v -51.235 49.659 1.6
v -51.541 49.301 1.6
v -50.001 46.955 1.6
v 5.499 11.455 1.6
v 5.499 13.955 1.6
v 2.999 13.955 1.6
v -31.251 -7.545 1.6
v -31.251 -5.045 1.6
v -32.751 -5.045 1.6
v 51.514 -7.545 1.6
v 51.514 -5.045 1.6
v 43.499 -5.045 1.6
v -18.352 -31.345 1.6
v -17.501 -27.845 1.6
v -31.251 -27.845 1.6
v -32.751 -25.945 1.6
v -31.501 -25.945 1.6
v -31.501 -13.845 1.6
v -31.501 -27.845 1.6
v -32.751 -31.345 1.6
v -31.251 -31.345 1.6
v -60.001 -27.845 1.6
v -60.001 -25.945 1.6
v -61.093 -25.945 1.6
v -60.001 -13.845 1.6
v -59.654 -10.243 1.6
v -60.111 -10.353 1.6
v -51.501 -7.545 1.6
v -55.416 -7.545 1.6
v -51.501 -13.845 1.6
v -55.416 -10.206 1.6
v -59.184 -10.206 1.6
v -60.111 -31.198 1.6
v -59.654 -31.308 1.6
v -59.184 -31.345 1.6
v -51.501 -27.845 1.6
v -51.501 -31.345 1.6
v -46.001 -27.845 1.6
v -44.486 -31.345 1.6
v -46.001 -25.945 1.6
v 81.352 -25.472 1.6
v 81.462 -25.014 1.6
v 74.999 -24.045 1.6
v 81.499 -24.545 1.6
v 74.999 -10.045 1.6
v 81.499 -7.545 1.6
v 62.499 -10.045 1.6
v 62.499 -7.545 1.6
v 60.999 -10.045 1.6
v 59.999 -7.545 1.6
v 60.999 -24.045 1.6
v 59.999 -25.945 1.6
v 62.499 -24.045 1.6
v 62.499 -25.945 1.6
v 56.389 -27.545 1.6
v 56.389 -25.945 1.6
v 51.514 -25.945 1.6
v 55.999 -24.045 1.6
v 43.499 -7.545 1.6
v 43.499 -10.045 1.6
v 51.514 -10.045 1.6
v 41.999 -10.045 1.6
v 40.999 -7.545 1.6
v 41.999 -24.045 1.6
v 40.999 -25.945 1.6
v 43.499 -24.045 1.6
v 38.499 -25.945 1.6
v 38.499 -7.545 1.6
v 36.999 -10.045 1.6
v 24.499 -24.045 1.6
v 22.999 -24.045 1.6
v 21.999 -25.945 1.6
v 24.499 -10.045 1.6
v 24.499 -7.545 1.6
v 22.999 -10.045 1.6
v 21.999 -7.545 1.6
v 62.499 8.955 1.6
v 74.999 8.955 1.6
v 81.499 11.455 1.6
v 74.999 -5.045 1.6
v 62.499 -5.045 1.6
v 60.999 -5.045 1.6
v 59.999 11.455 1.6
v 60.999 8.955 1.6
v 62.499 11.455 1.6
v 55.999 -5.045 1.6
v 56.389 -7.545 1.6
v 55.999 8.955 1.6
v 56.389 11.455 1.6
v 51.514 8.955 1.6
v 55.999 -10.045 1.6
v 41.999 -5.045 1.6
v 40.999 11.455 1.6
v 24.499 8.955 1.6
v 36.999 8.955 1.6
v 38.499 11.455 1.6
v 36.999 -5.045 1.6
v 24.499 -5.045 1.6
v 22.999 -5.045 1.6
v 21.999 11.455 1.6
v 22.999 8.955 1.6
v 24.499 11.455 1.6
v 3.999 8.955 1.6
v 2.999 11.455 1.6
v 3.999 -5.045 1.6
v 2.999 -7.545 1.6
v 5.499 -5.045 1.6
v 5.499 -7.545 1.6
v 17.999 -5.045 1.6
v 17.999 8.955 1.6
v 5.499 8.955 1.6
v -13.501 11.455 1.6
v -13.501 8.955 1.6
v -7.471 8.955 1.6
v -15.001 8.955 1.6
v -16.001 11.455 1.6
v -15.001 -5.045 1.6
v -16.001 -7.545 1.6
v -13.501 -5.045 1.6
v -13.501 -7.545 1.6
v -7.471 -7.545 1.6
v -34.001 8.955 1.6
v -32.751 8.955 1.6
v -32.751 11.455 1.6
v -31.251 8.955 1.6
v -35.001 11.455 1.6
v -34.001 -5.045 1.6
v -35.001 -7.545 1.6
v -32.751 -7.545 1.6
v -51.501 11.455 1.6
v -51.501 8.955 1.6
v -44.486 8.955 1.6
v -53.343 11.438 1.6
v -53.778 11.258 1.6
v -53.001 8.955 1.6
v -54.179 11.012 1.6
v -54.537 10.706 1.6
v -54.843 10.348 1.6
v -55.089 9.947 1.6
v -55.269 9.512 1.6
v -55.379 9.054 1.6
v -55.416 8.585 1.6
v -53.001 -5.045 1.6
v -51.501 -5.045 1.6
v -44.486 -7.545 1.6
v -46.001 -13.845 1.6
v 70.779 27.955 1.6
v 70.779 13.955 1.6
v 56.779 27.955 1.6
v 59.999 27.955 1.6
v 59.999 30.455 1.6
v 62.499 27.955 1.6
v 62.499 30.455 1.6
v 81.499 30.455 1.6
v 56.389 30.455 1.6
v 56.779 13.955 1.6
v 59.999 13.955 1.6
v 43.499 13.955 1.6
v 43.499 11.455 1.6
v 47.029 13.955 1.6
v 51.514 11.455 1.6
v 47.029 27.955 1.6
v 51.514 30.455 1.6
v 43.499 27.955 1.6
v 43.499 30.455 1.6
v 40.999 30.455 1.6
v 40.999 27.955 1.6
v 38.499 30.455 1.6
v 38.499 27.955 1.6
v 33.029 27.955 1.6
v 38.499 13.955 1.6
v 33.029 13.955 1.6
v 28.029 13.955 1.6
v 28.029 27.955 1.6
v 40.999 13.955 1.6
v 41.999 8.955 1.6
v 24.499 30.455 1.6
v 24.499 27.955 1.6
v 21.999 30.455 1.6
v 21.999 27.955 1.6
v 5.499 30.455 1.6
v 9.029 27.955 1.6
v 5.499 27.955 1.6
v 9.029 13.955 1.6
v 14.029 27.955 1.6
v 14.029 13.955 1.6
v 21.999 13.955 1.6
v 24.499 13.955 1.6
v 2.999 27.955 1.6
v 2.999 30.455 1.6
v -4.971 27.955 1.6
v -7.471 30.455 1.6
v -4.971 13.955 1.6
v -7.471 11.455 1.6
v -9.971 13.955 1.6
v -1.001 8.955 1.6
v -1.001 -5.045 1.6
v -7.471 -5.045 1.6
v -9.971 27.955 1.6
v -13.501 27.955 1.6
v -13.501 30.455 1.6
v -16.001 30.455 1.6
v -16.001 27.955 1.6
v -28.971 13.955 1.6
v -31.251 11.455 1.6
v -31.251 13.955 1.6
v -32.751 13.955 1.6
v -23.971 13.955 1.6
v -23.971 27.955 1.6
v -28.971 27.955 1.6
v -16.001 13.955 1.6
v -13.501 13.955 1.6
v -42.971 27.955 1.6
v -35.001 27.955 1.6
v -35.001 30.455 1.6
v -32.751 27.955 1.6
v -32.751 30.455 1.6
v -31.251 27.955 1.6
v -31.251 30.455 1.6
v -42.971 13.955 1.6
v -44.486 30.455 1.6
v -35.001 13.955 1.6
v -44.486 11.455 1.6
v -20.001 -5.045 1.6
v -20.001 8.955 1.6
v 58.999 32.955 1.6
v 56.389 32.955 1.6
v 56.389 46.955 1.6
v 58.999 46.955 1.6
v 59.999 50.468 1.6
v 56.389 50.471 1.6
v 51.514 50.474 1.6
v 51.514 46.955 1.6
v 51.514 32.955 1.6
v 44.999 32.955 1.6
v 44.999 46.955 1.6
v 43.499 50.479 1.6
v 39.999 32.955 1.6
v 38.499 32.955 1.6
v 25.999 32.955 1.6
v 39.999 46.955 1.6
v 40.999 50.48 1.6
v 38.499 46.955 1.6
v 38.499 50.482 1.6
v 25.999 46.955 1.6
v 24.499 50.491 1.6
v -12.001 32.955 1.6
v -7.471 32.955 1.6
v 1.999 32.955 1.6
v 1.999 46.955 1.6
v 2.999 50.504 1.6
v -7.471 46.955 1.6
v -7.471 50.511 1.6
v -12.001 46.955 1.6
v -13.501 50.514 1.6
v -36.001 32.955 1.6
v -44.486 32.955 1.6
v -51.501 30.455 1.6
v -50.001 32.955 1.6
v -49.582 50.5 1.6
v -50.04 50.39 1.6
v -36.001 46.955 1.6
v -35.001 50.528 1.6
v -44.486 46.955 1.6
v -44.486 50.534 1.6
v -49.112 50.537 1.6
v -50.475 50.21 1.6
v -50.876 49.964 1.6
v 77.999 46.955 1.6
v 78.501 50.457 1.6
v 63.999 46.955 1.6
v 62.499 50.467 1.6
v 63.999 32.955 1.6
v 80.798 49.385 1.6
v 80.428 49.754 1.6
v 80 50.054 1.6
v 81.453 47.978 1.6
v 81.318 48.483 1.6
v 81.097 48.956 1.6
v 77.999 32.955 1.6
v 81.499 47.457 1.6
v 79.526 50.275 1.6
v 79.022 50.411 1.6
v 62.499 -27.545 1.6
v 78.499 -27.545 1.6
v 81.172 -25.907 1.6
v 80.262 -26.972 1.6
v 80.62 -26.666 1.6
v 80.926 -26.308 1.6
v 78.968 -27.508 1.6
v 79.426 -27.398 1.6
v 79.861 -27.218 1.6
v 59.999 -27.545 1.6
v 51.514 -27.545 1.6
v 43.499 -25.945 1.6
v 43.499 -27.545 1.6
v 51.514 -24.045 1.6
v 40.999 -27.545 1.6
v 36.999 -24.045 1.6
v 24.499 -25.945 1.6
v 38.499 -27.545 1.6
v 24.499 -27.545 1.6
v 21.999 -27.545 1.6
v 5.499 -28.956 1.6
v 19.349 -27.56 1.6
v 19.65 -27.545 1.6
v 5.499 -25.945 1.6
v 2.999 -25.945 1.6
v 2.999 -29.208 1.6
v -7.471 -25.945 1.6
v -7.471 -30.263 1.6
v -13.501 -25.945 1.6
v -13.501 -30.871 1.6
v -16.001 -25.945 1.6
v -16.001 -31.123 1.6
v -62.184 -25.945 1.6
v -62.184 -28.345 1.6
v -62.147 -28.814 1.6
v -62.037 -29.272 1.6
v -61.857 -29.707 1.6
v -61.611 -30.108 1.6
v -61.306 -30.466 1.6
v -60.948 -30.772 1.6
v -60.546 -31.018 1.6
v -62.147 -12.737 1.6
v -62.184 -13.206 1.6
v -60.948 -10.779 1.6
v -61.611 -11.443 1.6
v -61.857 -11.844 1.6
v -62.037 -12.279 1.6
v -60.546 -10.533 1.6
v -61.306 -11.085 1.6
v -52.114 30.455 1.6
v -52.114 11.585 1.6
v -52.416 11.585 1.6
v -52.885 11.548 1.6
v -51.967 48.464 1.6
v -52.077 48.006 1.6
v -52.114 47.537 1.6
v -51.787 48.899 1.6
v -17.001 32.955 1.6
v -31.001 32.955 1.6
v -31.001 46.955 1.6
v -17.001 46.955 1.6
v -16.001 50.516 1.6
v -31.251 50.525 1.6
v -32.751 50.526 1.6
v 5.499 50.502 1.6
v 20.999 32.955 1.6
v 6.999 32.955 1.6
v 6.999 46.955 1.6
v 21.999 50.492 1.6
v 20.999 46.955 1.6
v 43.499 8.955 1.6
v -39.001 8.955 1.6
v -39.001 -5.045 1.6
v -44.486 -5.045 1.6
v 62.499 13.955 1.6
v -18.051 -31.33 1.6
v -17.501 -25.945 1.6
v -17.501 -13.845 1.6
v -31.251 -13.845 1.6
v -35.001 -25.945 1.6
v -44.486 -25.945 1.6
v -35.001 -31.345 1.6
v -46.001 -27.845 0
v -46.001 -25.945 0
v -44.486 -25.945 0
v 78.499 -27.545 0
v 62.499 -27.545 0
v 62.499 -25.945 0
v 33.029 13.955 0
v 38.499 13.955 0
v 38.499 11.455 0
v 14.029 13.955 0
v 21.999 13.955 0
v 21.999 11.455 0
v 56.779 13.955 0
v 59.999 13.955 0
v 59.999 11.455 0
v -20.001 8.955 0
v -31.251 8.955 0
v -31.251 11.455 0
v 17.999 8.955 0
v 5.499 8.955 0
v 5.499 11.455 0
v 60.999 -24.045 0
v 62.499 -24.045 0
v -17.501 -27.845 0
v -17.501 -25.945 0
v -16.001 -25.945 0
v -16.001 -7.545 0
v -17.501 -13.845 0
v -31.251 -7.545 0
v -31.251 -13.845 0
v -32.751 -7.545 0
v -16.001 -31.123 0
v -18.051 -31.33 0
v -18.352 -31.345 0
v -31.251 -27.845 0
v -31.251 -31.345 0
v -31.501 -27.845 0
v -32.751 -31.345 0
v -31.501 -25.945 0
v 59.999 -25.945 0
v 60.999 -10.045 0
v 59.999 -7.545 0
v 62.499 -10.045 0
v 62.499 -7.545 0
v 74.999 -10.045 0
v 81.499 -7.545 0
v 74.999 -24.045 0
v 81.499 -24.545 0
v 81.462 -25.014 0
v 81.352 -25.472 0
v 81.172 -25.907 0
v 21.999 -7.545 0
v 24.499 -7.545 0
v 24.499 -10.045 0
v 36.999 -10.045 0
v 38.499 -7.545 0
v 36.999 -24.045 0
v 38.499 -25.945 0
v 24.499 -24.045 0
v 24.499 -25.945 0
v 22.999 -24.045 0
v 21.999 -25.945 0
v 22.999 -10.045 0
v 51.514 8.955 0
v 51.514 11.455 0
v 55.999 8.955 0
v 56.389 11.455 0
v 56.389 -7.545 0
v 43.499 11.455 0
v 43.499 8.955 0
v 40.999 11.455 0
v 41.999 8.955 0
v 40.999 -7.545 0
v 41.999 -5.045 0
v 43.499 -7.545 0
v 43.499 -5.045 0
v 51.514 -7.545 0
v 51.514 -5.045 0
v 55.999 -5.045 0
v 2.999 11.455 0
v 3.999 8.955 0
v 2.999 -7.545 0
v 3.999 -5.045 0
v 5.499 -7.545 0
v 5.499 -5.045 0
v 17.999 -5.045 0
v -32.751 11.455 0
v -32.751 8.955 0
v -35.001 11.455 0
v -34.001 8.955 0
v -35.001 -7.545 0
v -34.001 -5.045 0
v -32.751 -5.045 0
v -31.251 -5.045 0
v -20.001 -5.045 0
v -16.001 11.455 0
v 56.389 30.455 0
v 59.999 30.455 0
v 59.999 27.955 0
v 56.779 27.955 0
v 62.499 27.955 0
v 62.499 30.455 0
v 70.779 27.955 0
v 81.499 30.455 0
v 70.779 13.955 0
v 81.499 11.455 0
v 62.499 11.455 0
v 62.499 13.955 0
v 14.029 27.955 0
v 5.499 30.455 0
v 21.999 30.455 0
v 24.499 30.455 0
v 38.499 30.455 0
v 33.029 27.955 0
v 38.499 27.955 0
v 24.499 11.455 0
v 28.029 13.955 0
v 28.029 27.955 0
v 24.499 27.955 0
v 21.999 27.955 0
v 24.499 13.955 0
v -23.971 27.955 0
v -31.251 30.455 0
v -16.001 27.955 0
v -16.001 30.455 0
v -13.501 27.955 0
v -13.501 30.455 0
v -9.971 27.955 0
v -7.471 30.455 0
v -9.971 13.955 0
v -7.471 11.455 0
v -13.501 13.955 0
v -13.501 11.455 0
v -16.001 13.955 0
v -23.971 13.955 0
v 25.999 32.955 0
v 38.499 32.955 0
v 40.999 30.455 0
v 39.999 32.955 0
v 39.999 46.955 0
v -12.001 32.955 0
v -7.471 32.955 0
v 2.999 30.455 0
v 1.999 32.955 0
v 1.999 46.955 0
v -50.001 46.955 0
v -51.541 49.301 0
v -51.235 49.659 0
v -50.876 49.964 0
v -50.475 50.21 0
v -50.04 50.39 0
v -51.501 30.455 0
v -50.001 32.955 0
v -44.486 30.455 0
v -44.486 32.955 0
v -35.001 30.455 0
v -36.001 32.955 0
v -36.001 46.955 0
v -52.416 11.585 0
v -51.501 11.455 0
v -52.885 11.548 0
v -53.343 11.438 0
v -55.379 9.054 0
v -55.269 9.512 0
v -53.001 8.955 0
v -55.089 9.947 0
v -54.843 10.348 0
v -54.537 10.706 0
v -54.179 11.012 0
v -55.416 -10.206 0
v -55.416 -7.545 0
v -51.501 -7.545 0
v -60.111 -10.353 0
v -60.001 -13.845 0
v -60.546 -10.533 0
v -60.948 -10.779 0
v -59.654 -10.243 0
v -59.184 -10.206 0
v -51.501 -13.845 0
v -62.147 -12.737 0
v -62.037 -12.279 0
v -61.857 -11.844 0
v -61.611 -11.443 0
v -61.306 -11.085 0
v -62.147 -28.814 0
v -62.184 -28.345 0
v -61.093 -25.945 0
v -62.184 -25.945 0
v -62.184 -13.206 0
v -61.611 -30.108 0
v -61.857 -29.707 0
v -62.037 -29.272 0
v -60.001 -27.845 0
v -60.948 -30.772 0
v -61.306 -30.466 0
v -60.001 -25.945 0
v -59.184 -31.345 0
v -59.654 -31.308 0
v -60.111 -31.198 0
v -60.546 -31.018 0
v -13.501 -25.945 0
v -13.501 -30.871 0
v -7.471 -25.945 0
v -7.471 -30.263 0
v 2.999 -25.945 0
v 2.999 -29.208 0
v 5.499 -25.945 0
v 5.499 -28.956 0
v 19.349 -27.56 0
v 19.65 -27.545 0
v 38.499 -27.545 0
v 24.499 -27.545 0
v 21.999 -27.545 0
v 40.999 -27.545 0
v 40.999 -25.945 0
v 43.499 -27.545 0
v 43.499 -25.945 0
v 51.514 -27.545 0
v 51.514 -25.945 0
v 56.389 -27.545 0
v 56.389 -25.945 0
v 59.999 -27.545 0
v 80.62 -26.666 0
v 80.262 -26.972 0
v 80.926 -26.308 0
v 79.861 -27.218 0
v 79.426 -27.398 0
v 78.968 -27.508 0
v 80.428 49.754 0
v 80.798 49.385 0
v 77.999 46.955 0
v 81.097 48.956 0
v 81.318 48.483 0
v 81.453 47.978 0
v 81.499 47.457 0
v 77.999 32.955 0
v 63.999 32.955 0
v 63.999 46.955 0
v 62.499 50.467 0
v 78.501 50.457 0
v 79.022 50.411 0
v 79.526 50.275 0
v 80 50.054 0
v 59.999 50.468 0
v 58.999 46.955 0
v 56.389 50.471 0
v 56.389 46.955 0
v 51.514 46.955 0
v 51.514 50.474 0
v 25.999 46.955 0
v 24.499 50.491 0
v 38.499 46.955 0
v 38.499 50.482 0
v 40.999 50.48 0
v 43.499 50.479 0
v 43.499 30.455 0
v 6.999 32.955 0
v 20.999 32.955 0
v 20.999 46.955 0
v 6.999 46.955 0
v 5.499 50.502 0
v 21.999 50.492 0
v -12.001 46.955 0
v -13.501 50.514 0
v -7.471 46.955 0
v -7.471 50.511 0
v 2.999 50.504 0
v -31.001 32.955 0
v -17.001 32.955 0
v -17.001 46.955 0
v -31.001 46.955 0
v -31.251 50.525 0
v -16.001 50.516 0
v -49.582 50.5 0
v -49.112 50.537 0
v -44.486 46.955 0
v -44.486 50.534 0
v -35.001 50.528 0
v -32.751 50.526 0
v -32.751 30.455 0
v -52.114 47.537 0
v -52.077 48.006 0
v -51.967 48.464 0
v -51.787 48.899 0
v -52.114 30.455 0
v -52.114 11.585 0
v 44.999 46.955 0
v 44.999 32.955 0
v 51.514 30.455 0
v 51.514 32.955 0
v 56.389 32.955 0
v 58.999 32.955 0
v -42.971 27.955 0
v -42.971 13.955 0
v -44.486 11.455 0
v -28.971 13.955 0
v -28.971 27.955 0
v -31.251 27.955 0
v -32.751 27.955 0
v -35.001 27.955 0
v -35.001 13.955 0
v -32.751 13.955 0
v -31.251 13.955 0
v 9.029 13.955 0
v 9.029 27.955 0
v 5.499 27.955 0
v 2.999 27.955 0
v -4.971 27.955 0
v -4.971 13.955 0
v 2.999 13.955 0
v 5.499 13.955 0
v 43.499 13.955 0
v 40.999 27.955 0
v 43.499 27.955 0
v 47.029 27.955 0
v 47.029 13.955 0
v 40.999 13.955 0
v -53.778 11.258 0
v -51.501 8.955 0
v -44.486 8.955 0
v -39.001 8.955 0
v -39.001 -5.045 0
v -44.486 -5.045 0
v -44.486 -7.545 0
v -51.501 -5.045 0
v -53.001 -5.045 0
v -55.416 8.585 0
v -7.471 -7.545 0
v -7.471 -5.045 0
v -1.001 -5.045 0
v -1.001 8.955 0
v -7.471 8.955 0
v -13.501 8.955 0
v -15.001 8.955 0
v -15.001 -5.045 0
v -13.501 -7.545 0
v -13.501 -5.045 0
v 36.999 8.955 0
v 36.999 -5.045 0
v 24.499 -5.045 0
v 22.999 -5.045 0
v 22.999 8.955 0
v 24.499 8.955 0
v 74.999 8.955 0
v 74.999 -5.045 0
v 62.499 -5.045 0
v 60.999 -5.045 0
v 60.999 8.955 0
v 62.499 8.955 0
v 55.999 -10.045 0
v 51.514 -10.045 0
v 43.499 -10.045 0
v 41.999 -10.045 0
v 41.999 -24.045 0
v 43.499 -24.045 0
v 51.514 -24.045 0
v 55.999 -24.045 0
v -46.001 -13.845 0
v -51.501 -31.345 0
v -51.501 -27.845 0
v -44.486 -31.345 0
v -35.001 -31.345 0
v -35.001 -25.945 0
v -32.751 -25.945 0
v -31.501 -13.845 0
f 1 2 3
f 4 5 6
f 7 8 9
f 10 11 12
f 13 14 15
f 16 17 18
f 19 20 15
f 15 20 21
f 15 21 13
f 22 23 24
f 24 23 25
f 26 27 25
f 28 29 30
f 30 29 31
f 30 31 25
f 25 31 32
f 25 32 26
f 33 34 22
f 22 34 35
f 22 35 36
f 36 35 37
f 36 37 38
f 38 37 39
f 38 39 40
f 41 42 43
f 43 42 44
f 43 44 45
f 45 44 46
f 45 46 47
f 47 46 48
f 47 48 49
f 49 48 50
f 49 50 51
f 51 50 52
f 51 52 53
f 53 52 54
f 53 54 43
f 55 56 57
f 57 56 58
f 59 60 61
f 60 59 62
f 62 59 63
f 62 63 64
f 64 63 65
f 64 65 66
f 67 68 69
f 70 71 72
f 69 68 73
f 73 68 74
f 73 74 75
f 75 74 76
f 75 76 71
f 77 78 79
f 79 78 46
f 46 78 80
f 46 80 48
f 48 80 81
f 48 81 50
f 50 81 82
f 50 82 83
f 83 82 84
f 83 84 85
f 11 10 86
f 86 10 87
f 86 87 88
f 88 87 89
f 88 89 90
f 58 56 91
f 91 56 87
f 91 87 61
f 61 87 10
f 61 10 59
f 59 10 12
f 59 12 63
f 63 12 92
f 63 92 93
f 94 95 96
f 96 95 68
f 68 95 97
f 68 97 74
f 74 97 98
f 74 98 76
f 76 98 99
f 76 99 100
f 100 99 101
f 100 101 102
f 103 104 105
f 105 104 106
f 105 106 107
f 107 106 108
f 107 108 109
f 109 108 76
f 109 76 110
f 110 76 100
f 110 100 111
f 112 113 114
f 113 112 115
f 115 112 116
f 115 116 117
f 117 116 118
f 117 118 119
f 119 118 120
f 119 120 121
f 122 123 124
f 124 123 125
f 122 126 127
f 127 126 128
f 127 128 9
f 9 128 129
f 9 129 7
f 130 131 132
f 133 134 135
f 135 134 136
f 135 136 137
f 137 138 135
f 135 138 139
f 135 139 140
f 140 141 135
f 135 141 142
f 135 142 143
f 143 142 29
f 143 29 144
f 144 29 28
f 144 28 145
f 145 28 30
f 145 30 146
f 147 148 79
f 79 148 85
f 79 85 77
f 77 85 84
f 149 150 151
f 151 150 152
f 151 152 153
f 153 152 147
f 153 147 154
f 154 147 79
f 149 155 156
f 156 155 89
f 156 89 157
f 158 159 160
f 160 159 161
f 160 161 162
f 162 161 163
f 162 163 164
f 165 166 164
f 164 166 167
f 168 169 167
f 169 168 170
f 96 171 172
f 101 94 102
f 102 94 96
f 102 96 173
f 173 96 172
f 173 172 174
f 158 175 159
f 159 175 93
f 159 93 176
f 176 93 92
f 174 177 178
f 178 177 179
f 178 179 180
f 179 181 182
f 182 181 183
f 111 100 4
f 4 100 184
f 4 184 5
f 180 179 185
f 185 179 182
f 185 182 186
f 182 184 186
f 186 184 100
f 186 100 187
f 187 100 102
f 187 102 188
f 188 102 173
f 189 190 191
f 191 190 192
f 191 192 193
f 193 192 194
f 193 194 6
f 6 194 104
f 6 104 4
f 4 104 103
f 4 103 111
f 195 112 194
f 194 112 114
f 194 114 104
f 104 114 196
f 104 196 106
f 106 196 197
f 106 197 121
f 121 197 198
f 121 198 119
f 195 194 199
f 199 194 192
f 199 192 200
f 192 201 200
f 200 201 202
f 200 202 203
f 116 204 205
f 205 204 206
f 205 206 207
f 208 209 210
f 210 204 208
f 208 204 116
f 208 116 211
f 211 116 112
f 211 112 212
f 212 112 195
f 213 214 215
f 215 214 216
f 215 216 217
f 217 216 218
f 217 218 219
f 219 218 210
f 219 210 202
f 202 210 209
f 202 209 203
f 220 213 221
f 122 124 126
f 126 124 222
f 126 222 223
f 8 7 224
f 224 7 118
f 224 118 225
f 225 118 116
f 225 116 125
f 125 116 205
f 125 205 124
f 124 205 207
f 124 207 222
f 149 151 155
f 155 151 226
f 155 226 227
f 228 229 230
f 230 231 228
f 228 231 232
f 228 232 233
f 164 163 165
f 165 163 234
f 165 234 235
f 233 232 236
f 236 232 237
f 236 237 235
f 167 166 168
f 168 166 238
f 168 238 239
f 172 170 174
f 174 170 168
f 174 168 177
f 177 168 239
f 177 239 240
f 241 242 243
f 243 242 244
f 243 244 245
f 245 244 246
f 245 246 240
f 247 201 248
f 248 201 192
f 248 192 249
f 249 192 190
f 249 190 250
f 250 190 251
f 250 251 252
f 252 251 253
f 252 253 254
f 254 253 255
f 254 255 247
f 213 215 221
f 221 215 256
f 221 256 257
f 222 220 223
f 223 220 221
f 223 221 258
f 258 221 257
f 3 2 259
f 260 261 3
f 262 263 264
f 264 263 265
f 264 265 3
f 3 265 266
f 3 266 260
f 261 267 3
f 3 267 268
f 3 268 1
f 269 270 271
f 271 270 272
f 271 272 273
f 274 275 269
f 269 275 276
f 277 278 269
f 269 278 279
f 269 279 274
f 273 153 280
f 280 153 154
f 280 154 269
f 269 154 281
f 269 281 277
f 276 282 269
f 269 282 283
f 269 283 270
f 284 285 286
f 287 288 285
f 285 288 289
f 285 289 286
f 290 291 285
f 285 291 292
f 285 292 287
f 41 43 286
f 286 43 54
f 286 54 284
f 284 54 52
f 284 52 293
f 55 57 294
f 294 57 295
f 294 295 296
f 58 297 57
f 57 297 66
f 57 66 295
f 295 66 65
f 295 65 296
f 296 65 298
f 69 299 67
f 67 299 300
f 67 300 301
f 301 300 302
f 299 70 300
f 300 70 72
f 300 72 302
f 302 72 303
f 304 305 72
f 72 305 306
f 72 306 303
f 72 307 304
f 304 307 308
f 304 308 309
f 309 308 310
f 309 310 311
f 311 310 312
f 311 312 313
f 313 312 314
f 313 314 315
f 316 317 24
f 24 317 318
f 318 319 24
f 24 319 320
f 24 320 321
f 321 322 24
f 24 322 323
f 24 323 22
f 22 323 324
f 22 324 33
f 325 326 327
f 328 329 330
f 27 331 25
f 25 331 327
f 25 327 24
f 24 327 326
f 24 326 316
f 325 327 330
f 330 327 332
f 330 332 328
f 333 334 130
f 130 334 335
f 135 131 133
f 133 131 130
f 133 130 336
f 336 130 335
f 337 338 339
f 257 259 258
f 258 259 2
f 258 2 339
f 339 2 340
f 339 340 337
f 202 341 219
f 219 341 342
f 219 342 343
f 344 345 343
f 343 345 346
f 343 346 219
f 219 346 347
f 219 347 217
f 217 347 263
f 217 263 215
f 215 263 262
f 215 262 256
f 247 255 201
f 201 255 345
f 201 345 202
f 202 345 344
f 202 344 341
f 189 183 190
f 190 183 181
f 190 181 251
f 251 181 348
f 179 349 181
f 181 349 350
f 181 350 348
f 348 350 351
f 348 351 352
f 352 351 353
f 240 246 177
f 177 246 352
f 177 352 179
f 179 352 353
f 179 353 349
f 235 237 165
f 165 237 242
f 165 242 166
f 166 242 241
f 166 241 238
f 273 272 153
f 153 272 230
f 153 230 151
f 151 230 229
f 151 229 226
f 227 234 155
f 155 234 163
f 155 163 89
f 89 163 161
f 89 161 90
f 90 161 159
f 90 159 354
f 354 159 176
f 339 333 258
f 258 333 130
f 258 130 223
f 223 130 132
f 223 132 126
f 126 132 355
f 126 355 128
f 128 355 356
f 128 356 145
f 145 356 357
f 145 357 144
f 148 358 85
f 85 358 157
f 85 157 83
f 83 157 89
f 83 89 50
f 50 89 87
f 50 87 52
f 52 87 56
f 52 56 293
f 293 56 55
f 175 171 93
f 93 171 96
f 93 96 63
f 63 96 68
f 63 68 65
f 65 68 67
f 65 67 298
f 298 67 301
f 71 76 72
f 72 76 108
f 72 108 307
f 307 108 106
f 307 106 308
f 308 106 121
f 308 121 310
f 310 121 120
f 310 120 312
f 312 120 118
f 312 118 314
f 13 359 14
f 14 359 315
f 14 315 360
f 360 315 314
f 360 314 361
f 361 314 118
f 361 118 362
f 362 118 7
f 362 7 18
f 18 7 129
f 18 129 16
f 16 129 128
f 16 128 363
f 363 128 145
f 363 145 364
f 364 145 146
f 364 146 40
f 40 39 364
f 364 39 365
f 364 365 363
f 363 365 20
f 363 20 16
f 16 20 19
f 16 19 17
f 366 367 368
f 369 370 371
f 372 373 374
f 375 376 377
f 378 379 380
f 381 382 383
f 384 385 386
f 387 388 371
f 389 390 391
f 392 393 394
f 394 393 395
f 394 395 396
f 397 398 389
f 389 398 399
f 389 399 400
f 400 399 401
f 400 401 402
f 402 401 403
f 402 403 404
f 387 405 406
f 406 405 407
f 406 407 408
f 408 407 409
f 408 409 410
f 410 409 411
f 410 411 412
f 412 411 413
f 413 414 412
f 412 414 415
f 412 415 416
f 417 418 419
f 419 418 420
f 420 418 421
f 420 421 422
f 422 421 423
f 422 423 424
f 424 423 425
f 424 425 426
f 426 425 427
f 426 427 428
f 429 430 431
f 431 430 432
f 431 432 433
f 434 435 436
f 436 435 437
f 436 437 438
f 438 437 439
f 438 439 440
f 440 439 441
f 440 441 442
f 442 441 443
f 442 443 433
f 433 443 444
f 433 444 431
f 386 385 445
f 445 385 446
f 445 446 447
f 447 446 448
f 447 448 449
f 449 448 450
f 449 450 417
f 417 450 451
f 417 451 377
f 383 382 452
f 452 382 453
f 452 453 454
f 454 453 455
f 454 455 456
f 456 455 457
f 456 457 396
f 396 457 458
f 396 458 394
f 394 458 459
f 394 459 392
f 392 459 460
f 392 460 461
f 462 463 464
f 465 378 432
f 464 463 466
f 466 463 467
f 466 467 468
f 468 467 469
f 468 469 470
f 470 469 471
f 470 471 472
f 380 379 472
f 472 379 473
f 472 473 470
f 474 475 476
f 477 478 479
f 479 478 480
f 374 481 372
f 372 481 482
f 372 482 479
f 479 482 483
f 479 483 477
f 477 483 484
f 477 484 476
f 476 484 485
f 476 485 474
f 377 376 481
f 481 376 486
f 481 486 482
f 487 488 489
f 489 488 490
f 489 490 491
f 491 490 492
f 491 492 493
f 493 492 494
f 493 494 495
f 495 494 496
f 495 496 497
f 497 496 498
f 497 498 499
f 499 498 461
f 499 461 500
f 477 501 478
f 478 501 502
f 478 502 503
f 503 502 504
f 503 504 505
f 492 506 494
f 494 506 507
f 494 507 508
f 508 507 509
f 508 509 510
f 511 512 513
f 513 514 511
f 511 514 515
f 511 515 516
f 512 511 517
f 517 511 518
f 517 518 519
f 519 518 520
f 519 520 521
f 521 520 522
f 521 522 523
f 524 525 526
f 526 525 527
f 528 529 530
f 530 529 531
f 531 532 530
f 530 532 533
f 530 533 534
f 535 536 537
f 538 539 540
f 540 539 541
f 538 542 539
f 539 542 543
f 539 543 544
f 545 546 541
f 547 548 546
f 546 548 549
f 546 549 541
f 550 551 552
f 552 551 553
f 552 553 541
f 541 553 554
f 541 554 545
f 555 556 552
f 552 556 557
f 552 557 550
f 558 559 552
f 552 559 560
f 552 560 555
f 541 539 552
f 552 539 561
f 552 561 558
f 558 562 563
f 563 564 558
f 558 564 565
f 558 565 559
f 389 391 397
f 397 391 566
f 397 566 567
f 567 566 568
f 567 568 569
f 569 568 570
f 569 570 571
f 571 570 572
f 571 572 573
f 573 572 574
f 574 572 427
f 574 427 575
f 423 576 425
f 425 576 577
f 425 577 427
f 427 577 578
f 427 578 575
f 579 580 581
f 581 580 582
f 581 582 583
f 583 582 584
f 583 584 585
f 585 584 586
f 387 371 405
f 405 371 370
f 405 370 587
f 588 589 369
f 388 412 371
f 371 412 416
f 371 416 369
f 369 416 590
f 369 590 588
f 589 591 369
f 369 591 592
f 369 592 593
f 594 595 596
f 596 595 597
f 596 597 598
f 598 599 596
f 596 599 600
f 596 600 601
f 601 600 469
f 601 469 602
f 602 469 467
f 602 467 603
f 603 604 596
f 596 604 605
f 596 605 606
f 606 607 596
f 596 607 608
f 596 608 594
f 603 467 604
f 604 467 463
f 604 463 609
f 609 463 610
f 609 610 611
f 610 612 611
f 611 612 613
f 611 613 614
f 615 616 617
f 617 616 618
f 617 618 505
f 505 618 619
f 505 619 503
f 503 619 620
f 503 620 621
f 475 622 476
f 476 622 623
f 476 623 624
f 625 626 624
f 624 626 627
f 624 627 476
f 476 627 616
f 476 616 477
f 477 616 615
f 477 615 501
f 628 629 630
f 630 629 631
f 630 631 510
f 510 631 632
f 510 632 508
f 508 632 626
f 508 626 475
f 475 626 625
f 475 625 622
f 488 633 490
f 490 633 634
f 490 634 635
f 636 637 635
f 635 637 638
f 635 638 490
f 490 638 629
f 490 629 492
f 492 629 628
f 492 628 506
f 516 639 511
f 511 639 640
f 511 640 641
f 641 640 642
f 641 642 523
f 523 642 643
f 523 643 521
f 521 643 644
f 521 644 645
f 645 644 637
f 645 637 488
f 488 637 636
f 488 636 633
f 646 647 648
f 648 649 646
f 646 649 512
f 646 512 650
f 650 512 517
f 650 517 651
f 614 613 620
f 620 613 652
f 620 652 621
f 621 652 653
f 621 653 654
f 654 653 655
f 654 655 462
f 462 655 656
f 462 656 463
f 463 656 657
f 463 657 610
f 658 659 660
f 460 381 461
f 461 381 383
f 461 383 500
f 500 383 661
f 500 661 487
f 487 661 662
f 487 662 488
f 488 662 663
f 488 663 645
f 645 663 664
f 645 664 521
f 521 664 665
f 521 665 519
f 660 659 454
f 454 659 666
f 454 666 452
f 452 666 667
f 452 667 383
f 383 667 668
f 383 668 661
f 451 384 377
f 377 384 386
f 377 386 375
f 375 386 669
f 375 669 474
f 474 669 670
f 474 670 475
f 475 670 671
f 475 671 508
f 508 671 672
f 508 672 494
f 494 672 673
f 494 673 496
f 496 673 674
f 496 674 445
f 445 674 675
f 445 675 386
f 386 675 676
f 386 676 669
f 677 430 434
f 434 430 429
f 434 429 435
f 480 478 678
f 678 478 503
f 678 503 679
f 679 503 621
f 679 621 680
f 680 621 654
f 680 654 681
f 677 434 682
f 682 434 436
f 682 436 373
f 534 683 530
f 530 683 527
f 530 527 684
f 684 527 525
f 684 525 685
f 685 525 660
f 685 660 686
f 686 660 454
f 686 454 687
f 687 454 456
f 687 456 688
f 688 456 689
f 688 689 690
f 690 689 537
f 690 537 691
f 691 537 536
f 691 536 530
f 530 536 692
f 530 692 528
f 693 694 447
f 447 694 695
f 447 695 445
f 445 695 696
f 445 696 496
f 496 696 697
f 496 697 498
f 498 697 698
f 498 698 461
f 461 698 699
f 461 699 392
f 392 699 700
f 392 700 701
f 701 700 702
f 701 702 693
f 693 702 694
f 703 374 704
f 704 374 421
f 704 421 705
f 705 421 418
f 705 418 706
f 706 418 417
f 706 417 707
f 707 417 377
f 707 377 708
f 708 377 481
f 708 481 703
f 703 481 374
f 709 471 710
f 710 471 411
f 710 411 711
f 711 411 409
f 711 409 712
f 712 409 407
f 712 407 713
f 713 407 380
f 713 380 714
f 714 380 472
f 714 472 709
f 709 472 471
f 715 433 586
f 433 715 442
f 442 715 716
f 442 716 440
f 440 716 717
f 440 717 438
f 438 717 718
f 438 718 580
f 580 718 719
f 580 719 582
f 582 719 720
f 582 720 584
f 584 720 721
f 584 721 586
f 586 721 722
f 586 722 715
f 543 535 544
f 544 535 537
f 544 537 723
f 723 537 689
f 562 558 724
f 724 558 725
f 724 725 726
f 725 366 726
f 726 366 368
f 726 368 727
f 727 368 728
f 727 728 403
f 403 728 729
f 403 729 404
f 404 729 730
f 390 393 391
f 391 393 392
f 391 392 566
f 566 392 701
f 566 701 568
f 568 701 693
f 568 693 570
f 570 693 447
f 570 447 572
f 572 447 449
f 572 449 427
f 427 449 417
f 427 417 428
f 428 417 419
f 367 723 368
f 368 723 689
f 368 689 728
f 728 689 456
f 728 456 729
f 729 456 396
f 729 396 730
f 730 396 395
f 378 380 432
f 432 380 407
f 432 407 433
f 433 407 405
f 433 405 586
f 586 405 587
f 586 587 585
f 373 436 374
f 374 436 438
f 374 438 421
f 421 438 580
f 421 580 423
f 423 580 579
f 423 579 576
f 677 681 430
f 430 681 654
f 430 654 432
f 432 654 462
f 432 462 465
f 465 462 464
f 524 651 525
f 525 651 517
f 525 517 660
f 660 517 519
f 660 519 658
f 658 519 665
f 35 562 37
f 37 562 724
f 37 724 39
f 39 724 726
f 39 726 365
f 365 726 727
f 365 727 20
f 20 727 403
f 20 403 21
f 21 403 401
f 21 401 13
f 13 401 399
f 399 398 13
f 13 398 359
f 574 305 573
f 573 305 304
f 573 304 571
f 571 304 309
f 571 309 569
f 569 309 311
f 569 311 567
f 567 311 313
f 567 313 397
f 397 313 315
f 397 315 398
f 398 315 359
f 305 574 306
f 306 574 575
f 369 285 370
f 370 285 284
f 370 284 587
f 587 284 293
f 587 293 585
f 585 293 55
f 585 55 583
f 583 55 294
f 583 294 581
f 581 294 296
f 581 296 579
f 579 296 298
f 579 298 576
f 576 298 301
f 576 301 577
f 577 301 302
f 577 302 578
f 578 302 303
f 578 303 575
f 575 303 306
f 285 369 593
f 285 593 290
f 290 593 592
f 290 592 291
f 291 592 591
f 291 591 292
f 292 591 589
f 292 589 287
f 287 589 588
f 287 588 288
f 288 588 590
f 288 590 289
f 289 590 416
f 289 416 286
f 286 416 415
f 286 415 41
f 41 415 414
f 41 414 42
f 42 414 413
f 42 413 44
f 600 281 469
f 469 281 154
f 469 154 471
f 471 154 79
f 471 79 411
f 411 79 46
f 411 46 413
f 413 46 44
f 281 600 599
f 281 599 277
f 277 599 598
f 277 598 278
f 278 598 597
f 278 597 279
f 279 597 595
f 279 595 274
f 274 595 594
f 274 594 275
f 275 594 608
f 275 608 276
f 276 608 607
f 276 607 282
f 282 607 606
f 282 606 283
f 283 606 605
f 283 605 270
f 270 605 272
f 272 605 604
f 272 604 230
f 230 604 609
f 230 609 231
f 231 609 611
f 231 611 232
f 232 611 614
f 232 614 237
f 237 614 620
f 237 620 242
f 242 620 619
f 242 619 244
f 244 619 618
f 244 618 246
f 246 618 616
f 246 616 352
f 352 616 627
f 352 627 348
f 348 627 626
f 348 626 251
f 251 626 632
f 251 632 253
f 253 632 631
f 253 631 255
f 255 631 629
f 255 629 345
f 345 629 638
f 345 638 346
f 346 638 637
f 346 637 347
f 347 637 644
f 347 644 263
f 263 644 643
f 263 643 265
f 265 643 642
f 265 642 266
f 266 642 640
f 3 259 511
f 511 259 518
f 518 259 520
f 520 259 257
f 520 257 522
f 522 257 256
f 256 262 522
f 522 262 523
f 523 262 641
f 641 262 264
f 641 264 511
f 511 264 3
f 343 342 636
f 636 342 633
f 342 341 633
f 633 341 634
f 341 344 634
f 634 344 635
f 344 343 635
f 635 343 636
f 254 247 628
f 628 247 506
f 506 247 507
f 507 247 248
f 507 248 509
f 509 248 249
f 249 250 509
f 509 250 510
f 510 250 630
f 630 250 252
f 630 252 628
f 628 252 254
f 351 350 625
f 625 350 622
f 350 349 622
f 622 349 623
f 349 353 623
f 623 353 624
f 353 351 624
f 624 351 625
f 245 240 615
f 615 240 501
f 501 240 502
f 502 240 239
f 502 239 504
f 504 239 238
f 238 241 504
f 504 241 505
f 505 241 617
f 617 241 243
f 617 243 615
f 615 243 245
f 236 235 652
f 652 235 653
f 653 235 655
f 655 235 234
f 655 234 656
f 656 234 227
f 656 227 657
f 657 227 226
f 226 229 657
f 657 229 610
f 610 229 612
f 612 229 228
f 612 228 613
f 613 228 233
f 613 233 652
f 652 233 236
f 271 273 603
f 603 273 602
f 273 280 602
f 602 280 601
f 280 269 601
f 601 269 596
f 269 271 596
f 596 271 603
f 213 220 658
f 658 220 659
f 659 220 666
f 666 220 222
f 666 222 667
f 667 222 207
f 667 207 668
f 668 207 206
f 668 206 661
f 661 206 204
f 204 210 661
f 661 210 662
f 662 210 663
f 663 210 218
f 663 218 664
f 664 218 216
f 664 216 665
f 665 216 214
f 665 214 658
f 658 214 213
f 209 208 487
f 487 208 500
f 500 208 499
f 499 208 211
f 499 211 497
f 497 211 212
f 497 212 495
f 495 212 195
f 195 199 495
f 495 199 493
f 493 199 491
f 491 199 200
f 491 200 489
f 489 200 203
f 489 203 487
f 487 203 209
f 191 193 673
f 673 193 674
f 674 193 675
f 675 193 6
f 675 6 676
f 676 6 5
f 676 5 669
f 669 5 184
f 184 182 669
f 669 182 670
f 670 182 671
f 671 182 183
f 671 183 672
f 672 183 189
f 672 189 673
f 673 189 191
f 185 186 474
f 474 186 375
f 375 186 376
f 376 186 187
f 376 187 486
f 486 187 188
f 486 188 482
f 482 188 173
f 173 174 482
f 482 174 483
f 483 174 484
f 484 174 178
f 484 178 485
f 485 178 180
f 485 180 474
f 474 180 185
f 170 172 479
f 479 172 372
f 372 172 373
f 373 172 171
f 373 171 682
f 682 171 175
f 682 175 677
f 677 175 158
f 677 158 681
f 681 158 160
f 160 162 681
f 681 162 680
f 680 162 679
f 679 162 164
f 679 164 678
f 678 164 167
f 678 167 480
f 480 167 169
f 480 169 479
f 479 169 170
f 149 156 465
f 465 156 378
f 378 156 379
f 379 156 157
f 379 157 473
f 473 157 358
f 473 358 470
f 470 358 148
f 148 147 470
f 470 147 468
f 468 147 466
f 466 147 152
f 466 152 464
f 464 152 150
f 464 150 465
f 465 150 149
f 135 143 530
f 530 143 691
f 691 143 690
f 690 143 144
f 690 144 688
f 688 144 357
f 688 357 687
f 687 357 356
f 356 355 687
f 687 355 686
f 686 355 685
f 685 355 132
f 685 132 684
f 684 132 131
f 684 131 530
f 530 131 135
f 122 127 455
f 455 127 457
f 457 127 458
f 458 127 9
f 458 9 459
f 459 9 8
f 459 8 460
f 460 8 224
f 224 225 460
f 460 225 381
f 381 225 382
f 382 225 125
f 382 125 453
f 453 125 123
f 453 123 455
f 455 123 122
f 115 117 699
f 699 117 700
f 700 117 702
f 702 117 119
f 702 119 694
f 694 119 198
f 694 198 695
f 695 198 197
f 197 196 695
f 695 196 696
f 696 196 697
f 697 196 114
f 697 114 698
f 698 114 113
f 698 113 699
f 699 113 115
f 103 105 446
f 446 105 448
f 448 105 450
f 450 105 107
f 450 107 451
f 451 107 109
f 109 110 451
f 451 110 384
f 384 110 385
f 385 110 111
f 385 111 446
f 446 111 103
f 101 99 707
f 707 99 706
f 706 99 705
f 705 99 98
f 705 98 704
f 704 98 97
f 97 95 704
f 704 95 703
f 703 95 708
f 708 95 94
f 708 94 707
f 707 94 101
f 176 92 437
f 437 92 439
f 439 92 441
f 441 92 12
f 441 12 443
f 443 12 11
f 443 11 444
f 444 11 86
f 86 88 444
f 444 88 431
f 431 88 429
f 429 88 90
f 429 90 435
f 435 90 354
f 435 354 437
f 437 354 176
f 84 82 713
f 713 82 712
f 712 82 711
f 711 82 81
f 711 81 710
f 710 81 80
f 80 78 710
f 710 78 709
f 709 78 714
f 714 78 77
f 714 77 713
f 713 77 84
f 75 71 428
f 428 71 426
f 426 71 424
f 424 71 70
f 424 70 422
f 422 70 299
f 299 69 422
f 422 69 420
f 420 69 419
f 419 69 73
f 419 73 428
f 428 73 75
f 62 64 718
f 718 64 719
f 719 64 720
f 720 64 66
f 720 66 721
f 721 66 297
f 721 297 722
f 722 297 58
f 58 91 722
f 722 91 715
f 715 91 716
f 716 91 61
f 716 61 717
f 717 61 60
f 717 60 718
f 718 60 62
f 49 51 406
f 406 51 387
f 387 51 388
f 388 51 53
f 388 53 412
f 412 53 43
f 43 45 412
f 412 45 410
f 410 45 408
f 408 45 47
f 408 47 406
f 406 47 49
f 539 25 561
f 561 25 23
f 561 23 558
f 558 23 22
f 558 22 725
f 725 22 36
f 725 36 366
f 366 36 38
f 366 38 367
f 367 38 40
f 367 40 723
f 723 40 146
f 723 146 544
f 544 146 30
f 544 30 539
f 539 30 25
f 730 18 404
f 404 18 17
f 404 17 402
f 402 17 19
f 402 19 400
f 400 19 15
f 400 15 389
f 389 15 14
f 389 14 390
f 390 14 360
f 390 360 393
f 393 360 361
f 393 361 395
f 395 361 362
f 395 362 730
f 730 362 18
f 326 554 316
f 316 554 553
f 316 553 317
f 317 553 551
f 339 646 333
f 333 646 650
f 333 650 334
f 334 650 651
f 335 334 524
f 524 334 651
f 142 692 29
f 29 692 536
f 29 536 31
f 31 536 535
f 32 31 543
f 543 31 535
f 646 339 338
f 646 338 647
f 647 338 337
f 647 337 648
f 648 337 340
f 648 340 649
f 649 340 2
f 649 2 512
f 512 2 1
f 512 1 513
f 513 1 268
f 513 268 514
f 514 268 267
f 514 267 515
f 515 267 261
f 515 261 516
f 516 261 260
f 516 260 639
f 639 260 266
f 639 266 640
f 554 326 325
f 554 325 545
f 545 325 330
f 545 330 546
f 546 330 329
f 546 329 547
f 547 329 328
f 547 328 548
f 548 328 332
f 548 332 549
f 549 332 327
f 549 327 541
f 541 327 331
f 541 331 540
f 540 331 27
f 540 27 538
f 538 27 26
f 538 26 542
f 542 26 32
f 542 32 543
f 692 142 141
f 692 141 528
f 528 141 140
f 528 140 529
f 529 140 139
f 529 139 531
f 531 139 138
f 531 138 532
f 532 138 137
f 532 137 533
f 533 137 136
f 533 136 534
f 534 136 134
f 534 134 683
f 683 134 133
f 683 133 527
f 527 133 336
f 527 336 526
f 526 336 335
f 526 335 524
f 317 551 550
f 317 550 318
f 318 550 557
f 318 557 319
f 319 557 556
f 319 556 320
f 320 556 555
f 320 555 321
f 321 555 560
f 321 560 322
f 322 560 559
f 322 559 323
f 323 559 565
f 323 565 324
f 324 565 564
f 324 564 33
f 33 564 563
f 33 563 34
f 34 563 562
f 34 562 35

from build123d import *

# Parameters (mm, degrees)
SKETCH1_W           = 14
SKETCH1_H           = 14
BOSS_EXTRUDE1_DEPTH = 1.6
CUT_EXTRUDE1_DEPTH  = 96.918055802
FILLET1_R           = 3


with BuildPart() as part:
    # Sketch1 → Boss-Extrude1 (new body)
    with BuildSketch(Plane.XY):
        with BuildLine():
            Line((-78.750976664, 0.641871894), (-78.750976664, 47.553166294))
            ThreePointArc((-78.750976664, 47.553166294), (-77.871635054, 49.67514838), (-75.749104672, 50.553165702))
            Line((-75.749104672, 50.553165702), (78.500895328, 50.456909802))
            ThreePointArc((78.500895328, 50.456909802), (80.621005422, 49.577568802), (81.499023352, 47.456910433))
            Line((81.499023352, 47.456910433), (81.499023352, -24.544961067))
            ThreePointArc((81.499023352, -24.544961067), (80.620343696, -26.666281411), (78.499023352, -27.544961067))
            Line((78.499023352, -27.544961067), (19.649835152, -27.544961067))
            ThreePointArc((19.649835152, -27.544961067), (19.499213793, -27.548744585), (19.348972354, -27.560085596))
            Line((19.348972354, -27.560085596), (-18.050925646, -31.329836596))
            ThreePointArc((-18.050925646, -31.329836596), (-18.201167086, -31.341177607), (-18.351788445, -31.344961125))
            Line((-18.351788445, -31.344961125), (-66.088698945, -31.344961125))
            ThreePointArc((-66.088698945, -31.344961125), (-67.842829771, -30.778687705), (-68.934748827, -29.2936445))
            Line((-68.934748827, -29.2936445), (-78.597026527, -0.3068115))
            ThreePointArc((-78.597026527, -0.3068115), (-78.712239029, 0.161325115), (-78.750976664, 0.641871894))
        make_face()
        with Locations((67.999023336, -17.044961106)):
            Rectangle(SKETCH1_W, SKETCH1_H, mode=Mode.SUBTRACT)
        with Locations((-46.000976664, 1.955038894)):
            Rectangle(SKETCH1_W, SKETCH1_H, mode=Mode.SUBTRACT)
        with Locations((-43.000976664, 39.955038894)):
            Rectangle(SKETCH1_W, SKETCH1_H, mode=Mode.SUBTRACT)
        with Locations((-24.000976664, 39.955038894)):
            Rectangle(SKETCH1_W, SKETCH1_H, mode=Mode.SUBTRACT)
        with Locations((-5.000976664, 39.955038894)):
            Rectangle(SKETCH1_W, SKETCH1_H, mode=Mode.SUBTRACT)
        with Locations((13.999023336, 39.955038894)):
            Rectangle(SKETCH1_W, SKETCH1_H, mode=Mode.SUBTRACT)
        with Locations((32.999023336, 39.955038894)):
            Rectangle(SKETCH1_W, SKETCH1_H, mode=Mode.SUBTRACT)
        with Locations((51.999023336, 39.955038894)):
            Rectangle(SKETCH1_W, SKETCH1_H, mode=Mode.SUBTRACT)
        with Locations((70.999023336, 39.955038894)):
            Rectangle(SKETCH1_W, SKETCH1_H, mode=Mode.SUBTRACT)
        with Locations((-35.970976664, 20.955038894)):
            Rectangle(SKETCH1_W, SKETCH1_H, mode=Mode.SUBTRACT)
        with Locations((-16.970976664, 20.955038894)):
            Rectangle(SKETCH1_W, SKETCH1_H, mode=Mode.SUBTRACT)
        with Locations((2.029023336, 20.955038894)):
            Rectangle(SKETCH1_W, SKETCH1_H, mode=Mode.SUBTRACT)
        with Locations((21.029023336, 20.955038894)):
            Rectangle(SKETCH1_W, SKETCH1_H, mode=Mode.SUBTRACT)
        with Locations((40.029023336, 20.955038894)):
            Rectangle(SKETCH1_W, SKETCH1_H, mode=Mode.SUBTRACT)
        with Locations((63.779023336, 20.955038894)):
            Rectangle(SKETCH1_W, SKETCH1_H, mode=Mode.SUBTRACT)
        with Locations((-27.000976664, 1.955038894)):
            Rectangle(SKETCH1_W, SKETCH1_H, mode=Mode.SUBTRACT)
        with Locations((-8.000976664, 1.955038894)):
            Rectangle(SKETCH1_W, SKETCH1_H, mode=Mode.SUBTRACT)
        with Locations((10.999023336, 1.955038894)):
            Rectangle(SKETCH1_W, SKETCH1_H, mode=Mode.SUBTRACT)
        with Locations((29.999023336, 1.955038894)):
            Rectangle(SKETCH1_W, SKETCH1_H, mode=Mode.SUBTRACT)
        with Locations((48.999023336, 1.955038894)):
            Rectangle(SKETCH1_W, SKETCH1_H, mode=Mode.SUBTRACT)
        with Locations((67.999023336, 1.955038894)):
            Rectangle(SKETCH1_W, SKETCH1_H, mode=Mode.SUBTRACT)
        with Locations((29.999023336, -17.044961106)):
            Rectangle(SKETCH1_W, SKETCH1_H, mode=Mode.SUBTRACT)
        with Locations((48.999023336, -17.044961106)):
            Rectangle(SKETCH1_W, SKETCH1_H, mode=Mode.SUBTRACT)
        with Locations((-53.000976664, -20.844961106)):
            Rectangle(SKETCH1_W, SKETCH1_H, mode=Mode.SUBTRACT)
        with Locations((-24.500976664, -20.844961106)):
            Rectangle(SKETCH1_W, SKETCH1_H, mode=Mode.SUBTRACT)
    extrude(amount=BOSS_EXTRUDE1_DEPTH)

    # Sketch2 → Cut-Extrude1 (cut, through all)
    with BuildSketch(Plane.XY.offset(1.6)):
        Polygon((-52.113994262, 52.196412896), (-52.113994262, 11.585140269), (-55.415723743, 11.585140269), (-55.415723743, -10.206274311), (-62.184269181, -10.206274311), (-62.184269181, -38.601147855), (-84.470943183, -34.143813054), (-95.201563999, 49.885202259), (-53.764859002, 58.304612437), align=None)
    extrude(amount=-CUT_EXTRUDE1_DEPTH, mode=Mode.SUBTRACT)

    # Fillet1
    fillet1_edges = [part.edges().sort_by_distance(p)[0] for p in [
        (-52.113994262, 50.538416795, 0.8),
        (-62.184269181, -31.344961125, 0.8),
        (-62.184269181, -10.206274311, 0.8),
        (-55.415723743, 11.585140269, 0.8),
    ]]
    fillet(fillet1_edges, radius=FILLET1_R)


solid = part.part
